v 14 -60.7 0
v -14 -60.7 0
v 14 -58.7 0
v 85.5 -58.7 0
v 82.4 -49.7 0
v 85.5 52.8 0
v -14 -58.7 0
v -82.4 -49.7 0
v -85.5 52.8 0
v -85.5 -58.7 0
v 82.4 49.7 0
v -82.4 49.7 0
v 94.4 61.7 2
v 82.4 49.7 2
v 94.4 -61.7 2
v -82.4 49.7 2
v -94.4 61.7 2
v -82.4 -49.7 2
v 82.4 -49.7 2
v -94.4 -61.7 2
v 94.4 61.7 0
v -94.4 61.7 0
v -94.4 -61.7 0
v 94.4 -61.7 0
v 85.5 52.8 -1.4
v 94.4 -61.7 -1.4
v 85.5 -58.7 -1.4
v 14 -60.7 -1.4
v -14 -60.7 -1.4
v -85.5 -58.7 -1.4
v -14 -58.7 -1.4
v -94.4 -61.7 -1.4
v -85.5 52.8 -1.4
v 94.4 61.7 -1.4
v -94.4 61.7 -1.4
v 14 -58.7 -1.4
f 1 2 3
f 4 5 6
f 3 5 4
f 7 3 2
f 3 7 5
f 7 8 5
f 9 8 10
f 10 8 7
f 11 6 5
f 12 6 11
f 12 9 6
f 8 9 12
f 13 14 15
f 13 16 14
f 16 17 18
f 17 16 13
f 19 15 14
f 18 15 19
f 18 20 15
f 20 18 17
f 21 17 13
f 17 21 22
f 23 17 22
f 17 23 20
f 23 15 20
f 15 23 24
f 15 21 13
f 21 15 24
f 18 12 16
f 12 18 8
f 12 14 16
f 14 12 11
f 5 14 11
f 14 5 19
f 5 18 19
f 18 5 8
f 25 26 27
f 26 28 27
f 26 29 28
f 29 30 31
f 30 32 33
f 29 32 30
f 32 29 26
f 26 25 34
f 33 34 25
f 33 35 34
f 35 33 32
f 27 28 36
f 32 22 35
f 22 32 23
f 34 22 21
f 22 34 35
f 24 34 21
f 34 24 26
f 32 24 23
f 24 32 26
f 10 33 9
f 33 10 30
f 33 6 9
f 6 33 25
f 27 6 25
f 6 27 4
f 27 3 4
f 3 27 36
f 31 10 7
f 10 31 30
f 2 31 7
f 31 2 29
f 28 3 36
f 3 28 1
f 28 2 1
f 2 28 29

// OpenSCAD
// file: common.scad
/* Settings */
$fn = 36;

display_height=111.5;
display_width=171;

sides_to_visible=3.1;
bottom_to_visible=9;

frame_border=12;
strength=2;
display_depth=1.4;

cable_cutout_width=28;
cable_cutout_height=2;

hat_standoff_y_distance=23;
hat_standoff_x_distance=58;
hat_standoff_height=4.5;
hat_standoff_from_display_bottom=17;
hat_standoff_radius=3;
hat_hole_diameter=3;
hat_top_height=3;

esp_standoff_y_distance=51;
esp_standoff_x_distance=23.5;
esp_standoff_height=5;
esp_standoff_from_display_bottom=15;
esp_standoff_from_center=-60;
esp_standoff_radius=1.5;
esp_hole_diameter=2.5;
esp_top_height=3;

foot_length=50;
foot_angle=65;
foot_from_side=10;

/* Computed dimensions */
inner_width=display_width-2*sides_to_visible;
inner_height=display_height-sides_to_visible-bottom_to_visible;

total_width=inner_width+2*frame_border;
total_height=inner_height+2*frame_border;

foot_height=tan(foot_angle)*foot_length;


module display_cutout() {
    translate([0,sides_to_visible/2-bottom_to_visible/2,-display_depth])
        linear_extrude(display_depth)
            square([display_width, display_height],true);
}

module cable_cutout() {
    translate([0,-cable_cutout_height/2-display_height/2+sides_to_visible/2-bottom_to_visible/2,-display_depth-strength])
        linear_extrude(strength+display_depth)
            square([cable_cutout_width,cable_cutout_height],true);
}

module hat_standoffs() {
    z_offset = -display_depth-strength;
    x_offset = hat_standoff_x_distance/2;
    y_offset = -display_height/2+hat_standoff_from_display_bottom;
    
    translate([x_offset,y_offset,z_offset])
    rotate([180,0,0])
        standoff(hat_standoff_radius, hat_standoff_height, hat_hole_diameter/2, hat_top_height);
    translate([x_offset,y_offset+hat_standoff_y_distance,z_offset])
    rotate([180,0,0])
        standoff(hat_standoff_radius, hat_standoff_height, hat_hole_diameter/2, hat_top_height);
    translate([-x_offset,y_offset,z_offset])
    rotate([180,0,0])
        standoff(hat_standoff_radius, hat_standoff_height, hat_hole_diameter/2, hat_top_height);
    translate([-x_offset,y_offset+hat_standoff_y_distance,z_offset])
    rotate([180,0,0])
        standoff(hat_standoff_radius, hat_standoff_height, hat_hole_diameter/2, hat_top_height);
    
    translate([x_offset,0,z_offset])
        linear_extrude(strength)
            square([hat_standoff_radius*2,total_height],true);
    
    translate([-x_offset,0,z_offset])
        linear_extrude(strength)
            square([hat_standoff_radius*2,total_height],true);
}

module esp_standoffs() {
    z_offset = -display_depth-strength;
    x_offset = esp_standoff_x_distance/2;
    y_offset = -display_height/2+esp_standoff_from_display_bottom;
    
    translate([esp_standoff_from_center+x_offset,y_offset,z_offset])
    rotate([180,0,0])
        standoff(esp_standoff_radius, esp_standoff_height, esp_hole_diameter/2, esp_top_height);
    translate([esp_standoff_from_center+x_offset,y_offset+esp_standoff_y_distance,z_offset])
    rotate([180,0,0])
        standoff(esp_standoff_radius, esp_standoff_height, esp_hole_diameter/2, esp_top_height);
    translate([esp_standoff_from_center-x_offset,y_offset,z_offset])
    rotate([180,0,0])
        standoff(esp_standoff_radius, esp_standoff_height, esp_hole_diameter/2, esp_top_height);
    translate([esp_standoff_from_center-x_offset,y_offset+esp_standoff_y_distance,z_offset])
    rotate([180,0,0])
        standoff(esp_standoff_radius, esp_standoff_height, esp_hole_diameter/2, esp_top_height);
    
    translate([esp_standoff_from_center+x_offset,0,z_offset])
        linear_extrude(strength)
            square([esp_standoff_radius*2,total_height],true);
    
    translate([esp_standoff_from_center-x_offset,0,z_offset])
        linear_extrude(strength)
            square([esp_standoff_radius*2,total_height],true);
}

module standoff(bottom_radius, bottom_height, top_radius, top_height) {
    linear_extrude(bottom_height)
        circle(r=bottom_radius);
    translate([0,0,bottom_height])
        linear_extrude(top_height)
        circle(r=top_radius);
}

module feet() {
    translate([total_width/2-foot_from_side-strength,-total_height/2,-display_depth-strength])
        rotate([90-foot_angle,0,0])
        rotate([0,90,0])
            foot();
    
    translate([-total_width/2+foot_from_side,-total_height/2,-display_depth-strength])
        rotate([90-foot_angle,0,0])
        rotate([0,90,0])
            foot();
}

module foot() {
    b1=[0,0];
    b2=[foot_length,0];
    b3=[foot_length,foot_height];
    
    linear_extrude(strength)
    polygon([b1,b2,b3]);
}
// main file
include <common.scad>

top();

module top() {
    difference() {
        union() {
            linear_extrude(strength) {
                difference() {
                    square([total_width, total_height],true);
                    square([inner_width, inner_height],true);
                }
            }
            
            translate([0,0,-display_depth]) {
                linear_extrude(display_depth) {
                    square([total_width, total_height],true);
                }
            }
        };
        
        display_cutout();
        cable_cutout();
    }
}
